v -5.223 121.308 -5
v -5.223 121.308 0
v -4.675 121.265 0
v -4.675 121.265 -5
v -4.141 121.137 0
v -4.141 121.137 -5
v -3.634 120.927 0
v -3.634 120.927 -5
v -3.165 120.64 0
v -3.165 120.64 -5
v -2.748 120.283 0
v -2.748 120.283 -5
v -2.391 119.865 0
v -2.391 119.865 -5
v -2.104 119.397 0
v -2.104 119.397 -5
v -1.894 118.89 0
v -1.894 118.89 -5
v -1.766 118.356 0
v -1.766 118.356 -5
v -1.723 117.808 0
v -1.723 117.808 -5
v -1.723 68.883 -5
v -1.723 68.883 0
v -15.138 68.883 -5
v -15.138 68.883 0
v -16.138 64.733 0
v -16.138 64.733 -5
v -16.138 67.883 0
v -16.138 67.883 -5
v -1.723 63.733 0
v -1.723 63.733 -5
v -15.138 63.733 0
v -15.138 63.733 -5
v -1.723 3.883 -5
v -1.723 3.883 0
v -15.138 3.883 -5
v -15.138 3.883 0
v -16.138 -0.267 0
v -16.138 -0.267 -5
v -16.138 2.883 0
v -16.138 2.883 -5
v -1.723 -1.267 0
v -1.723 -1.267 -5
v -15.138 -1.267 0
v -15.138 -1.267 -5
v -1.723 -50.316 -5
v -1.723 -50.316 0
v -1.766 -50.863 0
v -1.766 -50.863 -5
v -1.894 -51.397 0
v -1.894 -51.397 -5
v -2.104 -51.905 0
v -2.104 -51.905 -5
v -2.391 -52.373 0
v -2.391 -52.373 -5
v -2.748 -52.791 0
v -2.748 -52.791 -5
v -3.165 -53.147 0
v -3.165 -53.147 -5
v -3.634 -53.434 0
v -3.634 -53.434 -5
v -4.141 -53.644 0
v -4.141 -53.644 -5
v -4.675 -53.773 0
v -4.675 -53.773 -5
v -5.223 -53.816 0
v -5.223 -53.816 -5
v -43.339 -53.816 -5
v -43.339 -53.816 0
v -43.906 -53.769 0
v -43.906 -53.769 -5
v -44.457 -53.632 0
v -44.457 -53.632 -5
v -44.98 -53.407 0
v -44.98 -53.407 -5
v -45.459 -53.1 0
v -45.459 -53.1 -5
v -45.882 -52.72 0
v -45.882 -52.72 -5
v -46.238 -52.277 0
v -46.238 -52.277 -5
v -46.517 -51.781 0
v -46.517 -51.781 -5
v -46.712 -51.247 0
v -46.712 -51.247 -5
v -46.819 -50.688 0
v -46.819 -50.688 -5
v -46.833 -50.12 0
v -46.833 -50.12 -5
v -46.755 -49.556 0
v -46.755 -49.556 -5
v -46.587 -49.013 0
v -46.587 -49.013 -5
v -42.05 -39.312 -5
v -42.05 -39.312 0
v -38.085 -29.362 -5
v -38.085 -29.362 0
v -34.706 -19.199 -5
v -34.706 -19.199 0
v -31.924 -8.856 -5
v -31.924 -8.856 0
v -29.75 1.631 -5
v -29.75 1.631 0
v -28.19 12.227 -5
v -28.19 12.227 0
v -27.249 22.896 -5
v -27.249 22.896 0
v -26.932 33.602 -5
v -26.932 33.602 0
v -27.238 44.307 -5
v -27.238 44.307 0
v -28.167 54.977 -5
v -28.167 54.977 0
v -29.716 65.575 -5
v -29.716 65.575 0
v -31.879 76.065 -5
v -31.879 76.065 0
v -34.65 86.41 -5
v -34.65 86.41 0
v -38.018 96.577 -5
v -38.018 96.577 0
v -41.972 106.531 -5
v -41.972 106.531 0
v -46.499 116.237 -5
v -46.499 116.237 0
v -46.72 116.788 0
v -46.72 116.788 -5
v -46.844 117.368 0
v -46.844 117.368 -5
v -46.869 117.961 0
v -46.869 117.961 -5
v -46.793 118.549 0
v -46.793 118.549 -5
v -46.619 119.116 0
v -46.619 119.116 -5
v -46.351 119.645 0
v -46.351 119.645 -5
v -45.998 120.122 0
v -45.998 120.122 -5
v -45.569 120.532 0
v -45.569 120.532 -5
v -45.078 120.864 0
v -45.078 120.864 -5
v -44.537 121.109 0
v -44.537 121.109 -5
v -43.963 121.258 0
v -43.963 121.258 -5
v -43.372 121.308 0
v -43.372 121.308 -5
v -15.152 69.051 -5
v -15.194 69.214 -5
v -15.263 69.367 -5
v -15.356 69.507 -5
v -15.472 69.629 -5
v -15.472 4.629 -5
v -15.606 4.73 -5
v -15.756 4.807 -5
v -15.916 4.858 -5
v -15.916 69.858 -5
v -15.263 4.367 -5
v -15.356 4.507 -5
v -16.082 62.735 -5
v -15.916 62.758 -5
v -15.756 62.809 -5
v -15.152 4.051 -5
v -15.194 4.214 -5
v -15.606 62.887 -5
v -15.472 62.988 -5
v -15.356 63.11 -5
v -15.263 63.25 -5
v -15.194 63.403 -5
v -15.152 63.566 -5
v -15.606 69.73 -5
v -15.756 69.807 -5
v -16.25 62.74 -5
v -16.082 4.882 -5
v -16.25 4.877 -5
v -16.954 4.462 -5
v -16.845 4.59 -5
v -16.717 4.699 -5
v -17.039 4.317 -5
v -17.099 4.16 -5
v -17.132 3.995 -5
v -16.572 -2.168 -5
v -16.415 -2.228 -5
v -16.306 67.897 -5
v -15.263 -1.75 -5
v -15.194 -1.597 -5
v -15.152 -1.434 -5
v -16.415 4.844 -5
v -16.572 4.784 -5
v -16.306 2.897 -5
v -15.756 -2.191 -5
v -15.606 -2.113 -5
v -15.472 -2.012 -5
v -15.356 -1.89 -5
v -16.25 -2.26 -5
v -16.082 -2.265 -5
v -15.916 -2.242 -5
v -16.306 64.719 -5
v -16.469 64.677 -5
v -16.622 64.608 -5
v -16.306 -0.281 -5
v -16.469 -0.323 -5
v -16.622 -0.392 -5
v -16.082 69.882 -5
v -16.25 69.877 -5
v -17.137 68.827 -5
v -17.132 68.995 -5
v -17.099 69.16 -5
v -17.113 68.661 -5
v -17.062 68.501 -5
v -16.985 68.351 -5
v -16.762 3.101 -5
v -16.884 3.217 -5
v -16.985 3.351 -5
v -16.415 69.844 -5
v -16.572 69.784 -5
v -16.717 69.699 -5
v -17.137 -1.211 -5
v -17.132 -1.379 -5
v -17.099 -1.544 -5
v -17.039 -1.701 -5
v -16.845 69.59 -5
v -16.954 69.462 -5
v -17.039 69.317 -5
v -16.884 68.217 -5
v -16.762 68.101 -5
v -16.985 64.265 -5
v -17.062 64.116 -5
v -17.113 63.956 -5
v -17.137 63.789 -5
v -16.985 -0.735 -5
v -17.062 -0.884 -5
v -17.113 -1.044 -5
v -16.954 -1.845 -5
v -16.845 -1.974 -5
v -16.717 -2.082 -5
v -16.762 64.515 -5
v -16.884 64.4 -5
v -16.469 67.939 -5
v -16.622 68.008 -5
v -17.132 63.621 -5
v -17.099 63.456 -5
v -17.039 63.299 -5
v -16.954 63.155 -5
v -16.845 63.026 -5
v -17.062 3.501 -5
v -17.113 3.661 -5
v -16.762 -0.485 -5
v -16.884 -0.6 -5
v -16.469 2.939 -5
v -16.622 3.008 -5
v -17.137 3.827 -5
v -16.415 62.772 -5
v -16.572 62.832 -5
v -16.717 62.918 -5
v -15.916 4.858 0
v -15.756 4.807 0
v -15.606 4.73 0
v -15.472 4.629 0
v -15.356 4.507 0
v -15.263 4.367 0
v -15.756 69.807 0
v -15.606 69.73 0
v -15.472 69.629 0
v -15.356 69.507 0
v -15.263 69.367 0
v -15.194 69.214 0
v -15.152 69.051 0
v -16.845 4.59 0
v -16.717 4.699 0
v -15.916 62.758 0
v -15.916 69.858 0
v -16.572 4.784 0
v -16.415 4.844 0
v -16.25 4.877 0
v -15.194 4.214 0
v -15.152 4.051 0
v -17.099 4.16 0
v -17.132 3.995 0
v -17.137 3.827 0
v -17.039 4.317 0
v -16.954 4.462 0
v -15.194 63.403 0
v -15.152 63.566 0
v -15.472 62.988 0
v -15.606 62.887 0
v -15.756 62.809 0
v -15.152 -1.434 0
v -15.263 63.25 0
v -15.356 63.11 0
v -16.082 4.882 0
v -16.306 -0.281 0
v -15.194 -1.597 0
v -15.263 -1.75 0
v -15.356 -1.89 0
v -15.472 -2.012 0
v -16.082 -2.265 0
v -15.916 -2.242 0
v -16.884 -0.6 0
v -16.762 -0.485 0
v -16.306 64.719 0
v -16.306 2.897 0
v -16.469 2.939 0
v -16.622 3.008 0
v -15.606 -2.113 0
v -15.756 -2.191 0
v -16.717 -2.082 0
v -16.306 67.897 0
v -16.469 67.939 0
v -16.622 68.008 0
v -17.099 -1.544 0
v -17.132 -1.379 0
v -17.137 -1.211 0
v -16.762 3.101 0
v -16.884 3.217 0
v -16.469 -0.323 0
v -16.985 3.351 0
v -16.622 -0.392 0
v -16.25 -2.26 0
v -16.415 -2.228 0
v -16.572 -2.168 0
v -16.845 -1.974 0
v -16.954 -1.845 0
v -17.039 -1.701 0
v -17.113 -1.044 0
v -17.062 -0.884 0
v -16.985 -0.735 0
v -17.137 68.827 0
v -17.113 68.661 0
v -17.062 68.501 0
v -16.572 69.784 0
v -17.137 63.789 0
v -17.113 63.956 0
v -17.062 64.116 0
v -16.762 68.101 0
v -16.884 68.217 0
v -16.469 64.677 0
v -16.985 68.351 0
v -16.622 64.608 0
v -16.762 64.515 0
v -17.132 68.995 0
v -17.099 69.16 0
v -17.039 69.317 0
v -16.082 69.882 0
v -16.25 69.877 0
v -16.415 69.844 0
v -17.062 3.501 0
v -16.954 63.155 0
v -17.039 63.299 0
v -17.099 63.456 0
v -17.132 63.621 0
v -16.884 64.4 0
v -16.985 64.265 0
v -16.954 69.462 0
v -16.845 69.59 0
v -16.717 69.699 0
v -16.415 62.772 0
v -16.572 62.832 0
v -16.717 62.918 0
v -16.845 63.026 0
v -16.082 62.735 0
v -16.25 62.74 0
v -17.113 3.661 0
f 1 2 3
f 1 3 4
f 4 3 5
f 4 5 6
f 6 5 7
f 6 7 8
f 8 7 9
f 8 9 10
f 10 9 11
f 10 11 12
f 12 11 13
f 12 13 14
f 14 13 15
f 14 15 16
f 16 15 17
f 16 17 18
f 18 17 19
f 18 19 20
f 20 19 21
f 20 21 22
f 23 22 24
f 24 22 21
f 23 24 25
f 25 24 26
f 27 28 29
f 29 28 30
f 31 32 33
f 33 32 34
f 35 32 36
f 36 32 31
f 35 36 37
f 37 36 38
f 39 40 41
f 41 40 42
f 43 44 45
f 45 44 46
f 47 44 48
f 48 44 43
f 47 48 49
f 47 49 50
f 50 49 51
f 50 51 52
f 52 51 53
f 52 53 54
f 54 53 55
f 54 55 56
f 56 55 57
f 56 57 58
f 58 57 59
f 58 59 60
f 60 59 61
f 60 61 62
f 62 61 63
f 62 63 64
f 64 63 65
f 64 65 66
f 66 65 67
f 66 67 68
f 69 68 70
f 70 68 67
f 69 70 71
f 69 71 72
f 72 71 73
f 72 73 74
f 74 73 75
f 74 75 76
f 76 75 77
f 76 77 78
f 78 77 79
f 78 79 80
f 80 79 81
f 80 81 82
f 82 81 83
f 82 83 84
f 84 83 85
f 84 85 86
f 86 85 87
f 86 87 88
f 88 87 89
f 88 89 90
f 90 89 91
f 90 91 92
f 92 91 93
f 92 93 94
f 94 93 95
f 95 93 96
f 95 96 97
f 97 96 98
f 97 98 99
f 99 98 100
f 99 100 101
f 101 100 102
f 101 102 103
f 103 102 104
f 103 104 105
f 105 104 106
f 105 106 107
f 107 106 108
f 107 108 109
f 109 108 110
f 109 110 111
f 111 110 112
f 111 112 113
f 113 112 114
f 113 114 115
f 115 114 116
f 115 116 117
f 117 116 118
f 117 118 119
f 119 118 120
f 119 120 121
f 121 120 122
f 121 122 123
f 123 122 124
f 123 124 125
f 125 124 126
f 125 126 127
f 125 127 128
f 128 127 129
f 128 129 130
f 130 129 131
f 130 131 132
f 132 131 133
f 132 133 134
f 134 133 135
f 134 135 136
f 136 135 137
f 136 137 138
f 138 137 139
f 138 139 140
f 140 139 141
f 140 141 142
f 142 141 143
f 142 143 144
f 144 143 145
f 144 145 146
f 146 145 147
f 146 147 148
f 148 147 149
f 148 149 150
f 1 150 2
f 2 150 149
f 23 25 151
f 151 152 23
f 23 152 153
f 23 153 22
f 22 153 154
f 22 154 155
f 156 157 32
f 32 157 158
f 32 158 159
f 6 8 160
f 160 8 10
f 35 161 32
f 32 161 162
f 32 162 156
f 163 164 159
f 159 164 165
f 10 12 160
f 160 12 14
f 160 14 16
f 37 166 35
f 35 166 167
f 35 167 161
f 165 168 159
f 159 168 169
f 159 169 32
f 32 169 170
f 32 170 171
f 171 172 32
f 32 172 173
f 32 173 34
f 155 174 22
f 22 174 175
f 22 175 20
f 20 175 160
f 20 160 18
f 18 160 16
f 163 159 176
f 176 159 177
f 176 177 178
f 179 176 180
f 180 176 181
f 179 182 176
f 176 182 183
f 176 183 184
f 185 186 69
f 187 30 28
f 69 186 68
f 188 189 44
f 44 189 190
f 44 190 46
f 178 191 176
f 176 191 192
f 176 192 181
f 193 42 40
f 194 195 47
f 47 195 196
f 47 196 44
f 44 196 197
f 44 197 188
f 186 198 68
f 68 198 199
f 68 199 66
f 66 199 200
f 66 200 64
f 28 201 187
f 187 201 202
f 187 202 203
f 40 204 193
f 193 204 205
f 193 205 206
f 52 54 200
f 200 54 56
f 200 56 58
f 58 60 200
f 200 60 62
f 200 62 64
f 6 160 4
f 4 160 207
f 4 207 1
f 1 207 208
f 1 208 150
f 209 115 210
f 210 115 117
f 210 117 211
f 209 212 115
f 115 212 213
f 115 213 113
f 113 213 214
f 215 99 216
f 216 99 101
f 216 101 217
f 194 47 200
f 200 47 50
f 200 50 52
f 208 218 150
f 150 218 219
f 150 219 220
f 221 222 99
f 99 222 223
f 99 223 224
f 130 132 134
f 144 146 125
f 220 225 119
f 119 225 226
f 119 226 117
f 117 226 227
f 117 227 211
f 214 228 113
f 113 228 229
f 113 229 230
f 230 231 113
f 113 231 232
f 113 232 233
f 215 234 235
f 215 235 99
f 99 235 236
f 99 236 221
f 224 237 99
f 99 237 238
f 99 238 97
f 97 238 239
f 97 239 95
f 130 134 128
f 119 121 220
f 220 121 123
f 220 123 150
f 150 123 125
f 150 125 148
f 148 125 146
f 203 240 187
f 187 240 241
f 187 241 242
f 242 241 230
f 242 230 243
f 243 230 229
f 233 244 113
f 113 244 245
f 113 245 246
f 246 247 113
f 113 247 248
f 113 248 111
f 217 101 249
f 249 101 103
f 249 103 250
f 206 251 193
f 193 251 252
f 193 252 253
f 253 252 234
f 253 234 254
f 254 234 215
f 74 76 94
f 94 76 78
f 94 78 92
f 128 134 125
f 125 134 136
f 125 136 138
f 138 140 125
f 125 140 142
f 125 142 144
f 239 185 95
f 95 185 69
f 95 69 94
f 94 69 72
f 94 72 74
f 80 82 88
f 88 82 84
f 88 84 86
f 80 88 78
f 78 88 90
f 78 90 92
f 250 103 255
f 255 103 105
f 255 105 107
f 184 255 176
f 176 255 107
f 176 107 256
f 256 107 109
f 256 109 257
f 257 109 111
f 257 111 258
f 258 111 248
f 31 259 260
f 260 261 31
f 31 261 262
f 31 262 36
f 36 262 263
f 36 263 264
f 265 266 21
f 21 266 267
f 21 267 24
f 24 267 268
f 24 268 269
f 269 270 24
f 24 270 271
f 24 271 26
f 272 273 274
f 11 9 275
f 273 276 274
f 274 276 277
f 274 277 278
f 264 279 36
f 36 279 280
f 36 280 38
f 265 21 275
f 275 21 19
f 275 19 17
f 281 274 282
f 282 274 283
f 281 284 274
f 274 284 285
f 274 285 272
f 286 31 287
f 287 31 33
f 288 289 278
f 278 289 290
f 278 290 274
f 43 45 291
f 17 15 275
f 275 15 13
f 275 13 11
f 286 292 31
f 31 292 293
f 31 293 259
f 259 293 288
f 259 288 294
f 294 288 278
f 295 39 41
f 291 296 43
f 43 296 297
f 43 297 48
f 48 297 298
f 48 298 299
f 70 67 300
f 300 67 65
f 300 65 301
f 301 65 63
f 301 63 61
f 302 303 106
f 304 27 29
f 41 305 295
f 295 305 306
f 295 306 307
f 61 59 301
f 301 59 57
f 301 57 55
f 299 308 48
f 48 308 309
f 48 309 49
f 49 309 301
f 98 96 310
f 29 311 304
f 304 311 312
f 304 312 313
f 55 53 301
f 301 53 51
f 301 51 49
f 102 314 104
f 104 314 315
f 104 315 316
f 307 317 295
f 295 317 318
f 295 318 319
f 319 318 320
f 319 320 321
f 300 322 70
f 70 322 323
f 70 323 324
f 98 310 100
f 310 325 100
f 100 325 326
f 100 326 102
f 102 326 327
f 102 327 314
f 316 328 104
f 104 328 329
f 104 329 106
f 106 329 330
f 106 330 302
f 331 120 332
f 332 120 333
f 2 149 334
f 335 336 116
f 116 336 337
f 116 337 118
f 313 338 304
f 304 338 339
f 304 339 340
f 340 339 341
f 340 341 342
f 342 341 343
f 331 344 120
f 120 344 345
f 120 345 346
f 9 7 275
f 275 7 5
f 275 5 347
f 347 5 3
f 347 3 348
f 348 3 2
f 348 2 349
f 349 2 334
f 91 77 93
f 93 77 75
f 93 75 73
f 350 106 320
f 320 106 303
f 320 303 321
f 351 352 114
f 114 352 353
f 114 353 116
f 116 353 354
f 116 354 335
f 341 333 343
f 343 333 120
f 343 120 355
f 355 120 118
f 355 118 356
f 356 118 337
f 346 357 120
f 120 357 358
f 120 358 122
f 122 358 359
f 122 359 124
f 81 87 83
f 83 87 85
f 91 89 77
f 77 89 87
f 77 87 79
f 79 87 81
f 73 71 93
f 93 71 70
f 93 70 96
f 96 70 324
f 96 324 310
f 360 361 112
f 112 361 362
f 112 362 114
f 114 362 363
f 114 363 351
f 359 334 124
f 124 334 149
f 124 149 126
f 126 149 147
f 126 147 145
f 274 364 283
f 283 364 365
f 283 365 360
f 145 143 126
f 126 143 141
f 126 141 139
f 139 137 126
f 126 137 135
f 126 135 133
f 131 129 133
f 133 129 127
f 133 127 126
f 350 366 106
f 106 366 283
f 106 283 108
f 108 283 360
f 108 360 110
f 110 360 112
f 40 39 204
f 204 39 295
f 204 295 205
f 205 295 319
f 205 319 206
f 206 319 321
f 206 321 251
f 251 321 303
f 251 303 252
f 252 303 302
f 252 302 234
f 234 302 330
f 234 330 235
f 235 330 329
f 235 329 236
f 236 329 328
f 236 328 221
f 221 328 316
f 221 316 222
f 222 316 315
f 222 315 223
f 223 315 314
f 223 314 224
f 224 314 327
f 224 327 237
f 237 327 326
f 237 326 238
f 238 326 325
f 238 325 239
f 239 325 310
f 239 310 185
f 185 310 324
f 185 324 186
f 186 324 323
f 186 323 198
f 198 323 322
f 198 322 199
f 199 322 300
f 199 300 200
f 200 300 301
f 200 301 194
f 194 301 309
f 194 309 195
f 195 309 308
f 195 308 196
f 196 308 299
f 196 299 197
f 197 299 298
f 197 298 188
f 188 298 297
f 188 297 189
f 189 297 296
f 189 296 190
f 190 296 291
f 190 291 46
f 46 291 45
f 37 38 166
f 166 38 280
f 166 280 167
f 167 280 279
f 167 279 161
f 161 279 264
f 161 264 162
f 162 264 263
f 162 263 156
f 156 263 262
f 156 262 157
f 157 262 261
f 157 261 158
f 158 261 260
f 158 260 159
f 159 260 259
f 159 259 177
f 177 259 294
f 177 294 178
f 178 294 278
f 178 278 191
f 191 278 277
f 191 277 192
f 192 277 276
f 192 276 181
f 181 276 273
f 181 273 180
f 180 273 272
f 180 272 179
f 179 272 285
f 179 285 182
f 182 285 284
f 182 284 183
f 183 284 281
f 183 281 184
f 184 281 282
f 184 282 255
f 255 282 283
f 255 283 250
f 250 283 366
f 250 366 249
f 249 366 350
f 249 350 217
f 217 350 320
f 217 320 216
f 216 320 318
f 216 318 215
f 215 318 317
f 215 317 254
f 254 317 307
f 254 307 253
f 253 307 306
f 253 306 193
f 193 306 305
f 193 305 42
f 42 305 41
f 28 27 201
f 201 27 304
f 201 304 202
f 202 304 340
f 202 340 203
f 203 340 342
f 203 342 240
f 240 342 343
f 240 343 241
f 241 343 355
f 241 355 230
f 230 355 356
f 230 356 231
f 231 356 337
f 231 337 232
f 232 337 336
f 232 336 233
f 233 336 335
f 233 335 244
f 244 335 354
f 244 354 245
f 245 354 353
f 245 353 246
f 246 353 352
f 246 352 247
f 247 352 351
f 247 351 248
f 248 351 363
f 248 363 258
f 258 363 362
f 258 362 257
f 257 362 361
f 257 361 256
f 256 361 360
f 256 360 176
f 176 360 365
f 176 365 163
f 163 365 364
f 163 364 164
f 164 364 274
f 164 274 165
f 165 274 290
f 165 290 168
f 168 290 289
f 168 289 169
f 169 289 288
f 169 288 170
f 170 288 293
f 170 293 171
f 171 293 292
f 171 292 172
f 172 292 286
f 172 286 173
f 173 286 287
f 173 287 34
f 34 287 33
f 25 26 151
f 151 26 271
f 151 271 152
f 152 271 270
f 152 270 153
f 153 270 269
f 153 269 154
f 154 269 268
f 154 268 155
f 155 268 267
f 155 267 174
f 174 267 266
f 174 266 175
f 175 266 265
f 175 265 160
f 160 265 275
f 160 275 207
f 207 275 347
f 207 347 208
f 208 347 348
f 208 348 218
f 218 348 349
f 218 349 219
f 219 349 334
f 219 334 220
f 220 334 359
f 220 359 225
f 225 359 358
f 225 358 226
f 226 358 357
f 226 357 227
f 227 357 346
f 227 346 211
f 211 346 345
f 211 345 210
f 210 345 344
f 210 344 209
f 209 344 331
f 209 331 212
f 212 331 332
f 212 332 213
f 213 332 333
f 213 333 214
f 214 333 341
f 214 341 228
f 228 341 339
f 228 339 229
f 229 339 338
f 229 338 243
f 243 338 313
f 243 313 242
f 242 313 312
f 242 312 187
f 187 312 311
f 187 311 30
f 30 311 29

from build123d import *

# Parameters (mm, degrees)
FLANGE_BASE1_DEPTH    = 5
CORTE_EXTRUS_O1_REACH = 132.145
ESBO_O2_R             = 1


# Sheet-metal steps are written as plain solids
with BuildPart() as part:
    # Esboço1 → Flange-base1 (new body)
    with BuildSketch(Plane.XY):
        with BuildLine():
            Line((-1.722631236, 117.808229797), (-1.722631236, 68.883230259))
            Line((-1.722631236, 68.883230259), (-16.138228035, 68.883230259))
            Line((-16.138228035, 68.883230259), (-16.138228035, 63.733230259))
            Line((-16.138228035, 63.733230259), (-1.722631236, 63.733230259))
            Line((-1.722631236, 63.733230259), (-1.722631236, 3.883229335))
            Line((-1.722631236, 3.883229335), (-16.138228035, 3.883229335))
            Line((-16.138228035, 3.883229335), (-16.138228035, -1.266770665))
            Line((-16.138228035, -1.266770665), (-1.722631236, -1.266770665))
            Line((-1.722631236, -1.266770665), (-1.722631236, -50.315698913))
            ThreePointArc((-1.722631236, -50.315698913), (-2.747757502, -52.790572648), (-5.222631236, -53.815698913))
            Line((-5.222631236, -53.815698913), (-43.33867275, -53.815698913))
            ThreePointArc((-43.33867275, -53.815698913), (-46.237739354, -52.276671331), (-46.587238264, -49.01307767))
            ThreePointArc((-46.587238264, -49.01307767), (-26.931743246, 33.601550332), (-46.499490821, 116.237005793))
            ThreePointArc((-46.499490821, 116.237005793), (-46.351024737, 119.645444535), (-43.371991, 121.308229797))
            Line((-43.371991, 121.308229797), (-5.222631236, 121.308229797))
            ThreePointArc((-5.222631236, 121.308229797), (-2.747757502, 120.283103531), (-1.722631236, 117.808229797))
        make_face()
    extrude(amount=-FLANGE_BASE1_DEPTH)

    # Esboço2 → Corte-extrusão1 (cut, up to next)
    with BuildSketch(Plane.XY, mode=Mode.PRIVATE) as corte_extrus_o1_sk1:
        with Locations((-16.138228035, 68.883230259)):
            Circle(ESBO_O2_R)
    corte_extrus_o1_tool1 = extrude(corte_extrus_o1_sk1.sketch, amount=-CORTE_EXTRUS_O1_REACH, mode=Mode.PRIVATE) & part.part
    # Esboço2 → Corte-extrusão1 (cut, up to next)
    with BuildSketch(Plane.XY, mode=Mode.PRIVATE) as corte_extrus_o1_sk2:
        with Locations((-16.138228035, 63.733230259)):
            Circle(ESBO_O2_R)
    corte_extrus_o1_tool2 = extrude(corte_extrus_o1_sk2.sketch, amount=-CORTE_EXTRUS_O1_REACH, mode=Mode.PRIVATE) & part.part
    # Esboço2 → Corte-extrusão1 (cut, up to next)
    with BuildSketch(Plane.XY, mode=Mode.PRIVATE) as corte_extrus_o1_sk3:
        with Locations((-16.138228035, 3.883229335)):
            Circle(ESBO_O2_R)
    corte_extrus_o1_tool3 = extrude(corte_extrus_o1_sk3.sketch, amount=-CORTE_EXTRUS_O1_REACH, mode=Mode.PRIVATE) & part.part
    # Esboço2 → Corte-extrusão1 (cut, up to next)
    with BuildSketch(Plane.XY, mode=Mode.PRIVATE) as corte_extrus_o1_sk4:
        with Locations((-16.138228035, -1.266770665)):
            Circle(ESBO_O2_R)
    corte_extrus_o1_tool4 = extrude(corte_extrus_o1_sk4.sketch, amount=-CORTE_EXTRUS_O1_REACH, mode=Mode.PRIVATE) & part.part
    add(corte_extrus_o1_tool1.solids().sort_by_distance((-16.138228, 68.88323, 0))[0], mode=Mode.SUBTRACT)
    add(corte_extrus_o1_tool2.solids().sort_by_distance((-16.138228, 63.73323, 0))[0], mode=Mode.SUBTRACT)
    add(corte_extrus_o1_tool3.solids().sort_by_distance((-16.138228, 3.883229, 0))[0], mode=Mode.SUBTRACT)
    add(corte_extrus_o1_tool4.solids().sort_by_distance((-16.138228, -1.266771, 0))[0], mode=Mode.SUBTRACT)


solid = part.part
